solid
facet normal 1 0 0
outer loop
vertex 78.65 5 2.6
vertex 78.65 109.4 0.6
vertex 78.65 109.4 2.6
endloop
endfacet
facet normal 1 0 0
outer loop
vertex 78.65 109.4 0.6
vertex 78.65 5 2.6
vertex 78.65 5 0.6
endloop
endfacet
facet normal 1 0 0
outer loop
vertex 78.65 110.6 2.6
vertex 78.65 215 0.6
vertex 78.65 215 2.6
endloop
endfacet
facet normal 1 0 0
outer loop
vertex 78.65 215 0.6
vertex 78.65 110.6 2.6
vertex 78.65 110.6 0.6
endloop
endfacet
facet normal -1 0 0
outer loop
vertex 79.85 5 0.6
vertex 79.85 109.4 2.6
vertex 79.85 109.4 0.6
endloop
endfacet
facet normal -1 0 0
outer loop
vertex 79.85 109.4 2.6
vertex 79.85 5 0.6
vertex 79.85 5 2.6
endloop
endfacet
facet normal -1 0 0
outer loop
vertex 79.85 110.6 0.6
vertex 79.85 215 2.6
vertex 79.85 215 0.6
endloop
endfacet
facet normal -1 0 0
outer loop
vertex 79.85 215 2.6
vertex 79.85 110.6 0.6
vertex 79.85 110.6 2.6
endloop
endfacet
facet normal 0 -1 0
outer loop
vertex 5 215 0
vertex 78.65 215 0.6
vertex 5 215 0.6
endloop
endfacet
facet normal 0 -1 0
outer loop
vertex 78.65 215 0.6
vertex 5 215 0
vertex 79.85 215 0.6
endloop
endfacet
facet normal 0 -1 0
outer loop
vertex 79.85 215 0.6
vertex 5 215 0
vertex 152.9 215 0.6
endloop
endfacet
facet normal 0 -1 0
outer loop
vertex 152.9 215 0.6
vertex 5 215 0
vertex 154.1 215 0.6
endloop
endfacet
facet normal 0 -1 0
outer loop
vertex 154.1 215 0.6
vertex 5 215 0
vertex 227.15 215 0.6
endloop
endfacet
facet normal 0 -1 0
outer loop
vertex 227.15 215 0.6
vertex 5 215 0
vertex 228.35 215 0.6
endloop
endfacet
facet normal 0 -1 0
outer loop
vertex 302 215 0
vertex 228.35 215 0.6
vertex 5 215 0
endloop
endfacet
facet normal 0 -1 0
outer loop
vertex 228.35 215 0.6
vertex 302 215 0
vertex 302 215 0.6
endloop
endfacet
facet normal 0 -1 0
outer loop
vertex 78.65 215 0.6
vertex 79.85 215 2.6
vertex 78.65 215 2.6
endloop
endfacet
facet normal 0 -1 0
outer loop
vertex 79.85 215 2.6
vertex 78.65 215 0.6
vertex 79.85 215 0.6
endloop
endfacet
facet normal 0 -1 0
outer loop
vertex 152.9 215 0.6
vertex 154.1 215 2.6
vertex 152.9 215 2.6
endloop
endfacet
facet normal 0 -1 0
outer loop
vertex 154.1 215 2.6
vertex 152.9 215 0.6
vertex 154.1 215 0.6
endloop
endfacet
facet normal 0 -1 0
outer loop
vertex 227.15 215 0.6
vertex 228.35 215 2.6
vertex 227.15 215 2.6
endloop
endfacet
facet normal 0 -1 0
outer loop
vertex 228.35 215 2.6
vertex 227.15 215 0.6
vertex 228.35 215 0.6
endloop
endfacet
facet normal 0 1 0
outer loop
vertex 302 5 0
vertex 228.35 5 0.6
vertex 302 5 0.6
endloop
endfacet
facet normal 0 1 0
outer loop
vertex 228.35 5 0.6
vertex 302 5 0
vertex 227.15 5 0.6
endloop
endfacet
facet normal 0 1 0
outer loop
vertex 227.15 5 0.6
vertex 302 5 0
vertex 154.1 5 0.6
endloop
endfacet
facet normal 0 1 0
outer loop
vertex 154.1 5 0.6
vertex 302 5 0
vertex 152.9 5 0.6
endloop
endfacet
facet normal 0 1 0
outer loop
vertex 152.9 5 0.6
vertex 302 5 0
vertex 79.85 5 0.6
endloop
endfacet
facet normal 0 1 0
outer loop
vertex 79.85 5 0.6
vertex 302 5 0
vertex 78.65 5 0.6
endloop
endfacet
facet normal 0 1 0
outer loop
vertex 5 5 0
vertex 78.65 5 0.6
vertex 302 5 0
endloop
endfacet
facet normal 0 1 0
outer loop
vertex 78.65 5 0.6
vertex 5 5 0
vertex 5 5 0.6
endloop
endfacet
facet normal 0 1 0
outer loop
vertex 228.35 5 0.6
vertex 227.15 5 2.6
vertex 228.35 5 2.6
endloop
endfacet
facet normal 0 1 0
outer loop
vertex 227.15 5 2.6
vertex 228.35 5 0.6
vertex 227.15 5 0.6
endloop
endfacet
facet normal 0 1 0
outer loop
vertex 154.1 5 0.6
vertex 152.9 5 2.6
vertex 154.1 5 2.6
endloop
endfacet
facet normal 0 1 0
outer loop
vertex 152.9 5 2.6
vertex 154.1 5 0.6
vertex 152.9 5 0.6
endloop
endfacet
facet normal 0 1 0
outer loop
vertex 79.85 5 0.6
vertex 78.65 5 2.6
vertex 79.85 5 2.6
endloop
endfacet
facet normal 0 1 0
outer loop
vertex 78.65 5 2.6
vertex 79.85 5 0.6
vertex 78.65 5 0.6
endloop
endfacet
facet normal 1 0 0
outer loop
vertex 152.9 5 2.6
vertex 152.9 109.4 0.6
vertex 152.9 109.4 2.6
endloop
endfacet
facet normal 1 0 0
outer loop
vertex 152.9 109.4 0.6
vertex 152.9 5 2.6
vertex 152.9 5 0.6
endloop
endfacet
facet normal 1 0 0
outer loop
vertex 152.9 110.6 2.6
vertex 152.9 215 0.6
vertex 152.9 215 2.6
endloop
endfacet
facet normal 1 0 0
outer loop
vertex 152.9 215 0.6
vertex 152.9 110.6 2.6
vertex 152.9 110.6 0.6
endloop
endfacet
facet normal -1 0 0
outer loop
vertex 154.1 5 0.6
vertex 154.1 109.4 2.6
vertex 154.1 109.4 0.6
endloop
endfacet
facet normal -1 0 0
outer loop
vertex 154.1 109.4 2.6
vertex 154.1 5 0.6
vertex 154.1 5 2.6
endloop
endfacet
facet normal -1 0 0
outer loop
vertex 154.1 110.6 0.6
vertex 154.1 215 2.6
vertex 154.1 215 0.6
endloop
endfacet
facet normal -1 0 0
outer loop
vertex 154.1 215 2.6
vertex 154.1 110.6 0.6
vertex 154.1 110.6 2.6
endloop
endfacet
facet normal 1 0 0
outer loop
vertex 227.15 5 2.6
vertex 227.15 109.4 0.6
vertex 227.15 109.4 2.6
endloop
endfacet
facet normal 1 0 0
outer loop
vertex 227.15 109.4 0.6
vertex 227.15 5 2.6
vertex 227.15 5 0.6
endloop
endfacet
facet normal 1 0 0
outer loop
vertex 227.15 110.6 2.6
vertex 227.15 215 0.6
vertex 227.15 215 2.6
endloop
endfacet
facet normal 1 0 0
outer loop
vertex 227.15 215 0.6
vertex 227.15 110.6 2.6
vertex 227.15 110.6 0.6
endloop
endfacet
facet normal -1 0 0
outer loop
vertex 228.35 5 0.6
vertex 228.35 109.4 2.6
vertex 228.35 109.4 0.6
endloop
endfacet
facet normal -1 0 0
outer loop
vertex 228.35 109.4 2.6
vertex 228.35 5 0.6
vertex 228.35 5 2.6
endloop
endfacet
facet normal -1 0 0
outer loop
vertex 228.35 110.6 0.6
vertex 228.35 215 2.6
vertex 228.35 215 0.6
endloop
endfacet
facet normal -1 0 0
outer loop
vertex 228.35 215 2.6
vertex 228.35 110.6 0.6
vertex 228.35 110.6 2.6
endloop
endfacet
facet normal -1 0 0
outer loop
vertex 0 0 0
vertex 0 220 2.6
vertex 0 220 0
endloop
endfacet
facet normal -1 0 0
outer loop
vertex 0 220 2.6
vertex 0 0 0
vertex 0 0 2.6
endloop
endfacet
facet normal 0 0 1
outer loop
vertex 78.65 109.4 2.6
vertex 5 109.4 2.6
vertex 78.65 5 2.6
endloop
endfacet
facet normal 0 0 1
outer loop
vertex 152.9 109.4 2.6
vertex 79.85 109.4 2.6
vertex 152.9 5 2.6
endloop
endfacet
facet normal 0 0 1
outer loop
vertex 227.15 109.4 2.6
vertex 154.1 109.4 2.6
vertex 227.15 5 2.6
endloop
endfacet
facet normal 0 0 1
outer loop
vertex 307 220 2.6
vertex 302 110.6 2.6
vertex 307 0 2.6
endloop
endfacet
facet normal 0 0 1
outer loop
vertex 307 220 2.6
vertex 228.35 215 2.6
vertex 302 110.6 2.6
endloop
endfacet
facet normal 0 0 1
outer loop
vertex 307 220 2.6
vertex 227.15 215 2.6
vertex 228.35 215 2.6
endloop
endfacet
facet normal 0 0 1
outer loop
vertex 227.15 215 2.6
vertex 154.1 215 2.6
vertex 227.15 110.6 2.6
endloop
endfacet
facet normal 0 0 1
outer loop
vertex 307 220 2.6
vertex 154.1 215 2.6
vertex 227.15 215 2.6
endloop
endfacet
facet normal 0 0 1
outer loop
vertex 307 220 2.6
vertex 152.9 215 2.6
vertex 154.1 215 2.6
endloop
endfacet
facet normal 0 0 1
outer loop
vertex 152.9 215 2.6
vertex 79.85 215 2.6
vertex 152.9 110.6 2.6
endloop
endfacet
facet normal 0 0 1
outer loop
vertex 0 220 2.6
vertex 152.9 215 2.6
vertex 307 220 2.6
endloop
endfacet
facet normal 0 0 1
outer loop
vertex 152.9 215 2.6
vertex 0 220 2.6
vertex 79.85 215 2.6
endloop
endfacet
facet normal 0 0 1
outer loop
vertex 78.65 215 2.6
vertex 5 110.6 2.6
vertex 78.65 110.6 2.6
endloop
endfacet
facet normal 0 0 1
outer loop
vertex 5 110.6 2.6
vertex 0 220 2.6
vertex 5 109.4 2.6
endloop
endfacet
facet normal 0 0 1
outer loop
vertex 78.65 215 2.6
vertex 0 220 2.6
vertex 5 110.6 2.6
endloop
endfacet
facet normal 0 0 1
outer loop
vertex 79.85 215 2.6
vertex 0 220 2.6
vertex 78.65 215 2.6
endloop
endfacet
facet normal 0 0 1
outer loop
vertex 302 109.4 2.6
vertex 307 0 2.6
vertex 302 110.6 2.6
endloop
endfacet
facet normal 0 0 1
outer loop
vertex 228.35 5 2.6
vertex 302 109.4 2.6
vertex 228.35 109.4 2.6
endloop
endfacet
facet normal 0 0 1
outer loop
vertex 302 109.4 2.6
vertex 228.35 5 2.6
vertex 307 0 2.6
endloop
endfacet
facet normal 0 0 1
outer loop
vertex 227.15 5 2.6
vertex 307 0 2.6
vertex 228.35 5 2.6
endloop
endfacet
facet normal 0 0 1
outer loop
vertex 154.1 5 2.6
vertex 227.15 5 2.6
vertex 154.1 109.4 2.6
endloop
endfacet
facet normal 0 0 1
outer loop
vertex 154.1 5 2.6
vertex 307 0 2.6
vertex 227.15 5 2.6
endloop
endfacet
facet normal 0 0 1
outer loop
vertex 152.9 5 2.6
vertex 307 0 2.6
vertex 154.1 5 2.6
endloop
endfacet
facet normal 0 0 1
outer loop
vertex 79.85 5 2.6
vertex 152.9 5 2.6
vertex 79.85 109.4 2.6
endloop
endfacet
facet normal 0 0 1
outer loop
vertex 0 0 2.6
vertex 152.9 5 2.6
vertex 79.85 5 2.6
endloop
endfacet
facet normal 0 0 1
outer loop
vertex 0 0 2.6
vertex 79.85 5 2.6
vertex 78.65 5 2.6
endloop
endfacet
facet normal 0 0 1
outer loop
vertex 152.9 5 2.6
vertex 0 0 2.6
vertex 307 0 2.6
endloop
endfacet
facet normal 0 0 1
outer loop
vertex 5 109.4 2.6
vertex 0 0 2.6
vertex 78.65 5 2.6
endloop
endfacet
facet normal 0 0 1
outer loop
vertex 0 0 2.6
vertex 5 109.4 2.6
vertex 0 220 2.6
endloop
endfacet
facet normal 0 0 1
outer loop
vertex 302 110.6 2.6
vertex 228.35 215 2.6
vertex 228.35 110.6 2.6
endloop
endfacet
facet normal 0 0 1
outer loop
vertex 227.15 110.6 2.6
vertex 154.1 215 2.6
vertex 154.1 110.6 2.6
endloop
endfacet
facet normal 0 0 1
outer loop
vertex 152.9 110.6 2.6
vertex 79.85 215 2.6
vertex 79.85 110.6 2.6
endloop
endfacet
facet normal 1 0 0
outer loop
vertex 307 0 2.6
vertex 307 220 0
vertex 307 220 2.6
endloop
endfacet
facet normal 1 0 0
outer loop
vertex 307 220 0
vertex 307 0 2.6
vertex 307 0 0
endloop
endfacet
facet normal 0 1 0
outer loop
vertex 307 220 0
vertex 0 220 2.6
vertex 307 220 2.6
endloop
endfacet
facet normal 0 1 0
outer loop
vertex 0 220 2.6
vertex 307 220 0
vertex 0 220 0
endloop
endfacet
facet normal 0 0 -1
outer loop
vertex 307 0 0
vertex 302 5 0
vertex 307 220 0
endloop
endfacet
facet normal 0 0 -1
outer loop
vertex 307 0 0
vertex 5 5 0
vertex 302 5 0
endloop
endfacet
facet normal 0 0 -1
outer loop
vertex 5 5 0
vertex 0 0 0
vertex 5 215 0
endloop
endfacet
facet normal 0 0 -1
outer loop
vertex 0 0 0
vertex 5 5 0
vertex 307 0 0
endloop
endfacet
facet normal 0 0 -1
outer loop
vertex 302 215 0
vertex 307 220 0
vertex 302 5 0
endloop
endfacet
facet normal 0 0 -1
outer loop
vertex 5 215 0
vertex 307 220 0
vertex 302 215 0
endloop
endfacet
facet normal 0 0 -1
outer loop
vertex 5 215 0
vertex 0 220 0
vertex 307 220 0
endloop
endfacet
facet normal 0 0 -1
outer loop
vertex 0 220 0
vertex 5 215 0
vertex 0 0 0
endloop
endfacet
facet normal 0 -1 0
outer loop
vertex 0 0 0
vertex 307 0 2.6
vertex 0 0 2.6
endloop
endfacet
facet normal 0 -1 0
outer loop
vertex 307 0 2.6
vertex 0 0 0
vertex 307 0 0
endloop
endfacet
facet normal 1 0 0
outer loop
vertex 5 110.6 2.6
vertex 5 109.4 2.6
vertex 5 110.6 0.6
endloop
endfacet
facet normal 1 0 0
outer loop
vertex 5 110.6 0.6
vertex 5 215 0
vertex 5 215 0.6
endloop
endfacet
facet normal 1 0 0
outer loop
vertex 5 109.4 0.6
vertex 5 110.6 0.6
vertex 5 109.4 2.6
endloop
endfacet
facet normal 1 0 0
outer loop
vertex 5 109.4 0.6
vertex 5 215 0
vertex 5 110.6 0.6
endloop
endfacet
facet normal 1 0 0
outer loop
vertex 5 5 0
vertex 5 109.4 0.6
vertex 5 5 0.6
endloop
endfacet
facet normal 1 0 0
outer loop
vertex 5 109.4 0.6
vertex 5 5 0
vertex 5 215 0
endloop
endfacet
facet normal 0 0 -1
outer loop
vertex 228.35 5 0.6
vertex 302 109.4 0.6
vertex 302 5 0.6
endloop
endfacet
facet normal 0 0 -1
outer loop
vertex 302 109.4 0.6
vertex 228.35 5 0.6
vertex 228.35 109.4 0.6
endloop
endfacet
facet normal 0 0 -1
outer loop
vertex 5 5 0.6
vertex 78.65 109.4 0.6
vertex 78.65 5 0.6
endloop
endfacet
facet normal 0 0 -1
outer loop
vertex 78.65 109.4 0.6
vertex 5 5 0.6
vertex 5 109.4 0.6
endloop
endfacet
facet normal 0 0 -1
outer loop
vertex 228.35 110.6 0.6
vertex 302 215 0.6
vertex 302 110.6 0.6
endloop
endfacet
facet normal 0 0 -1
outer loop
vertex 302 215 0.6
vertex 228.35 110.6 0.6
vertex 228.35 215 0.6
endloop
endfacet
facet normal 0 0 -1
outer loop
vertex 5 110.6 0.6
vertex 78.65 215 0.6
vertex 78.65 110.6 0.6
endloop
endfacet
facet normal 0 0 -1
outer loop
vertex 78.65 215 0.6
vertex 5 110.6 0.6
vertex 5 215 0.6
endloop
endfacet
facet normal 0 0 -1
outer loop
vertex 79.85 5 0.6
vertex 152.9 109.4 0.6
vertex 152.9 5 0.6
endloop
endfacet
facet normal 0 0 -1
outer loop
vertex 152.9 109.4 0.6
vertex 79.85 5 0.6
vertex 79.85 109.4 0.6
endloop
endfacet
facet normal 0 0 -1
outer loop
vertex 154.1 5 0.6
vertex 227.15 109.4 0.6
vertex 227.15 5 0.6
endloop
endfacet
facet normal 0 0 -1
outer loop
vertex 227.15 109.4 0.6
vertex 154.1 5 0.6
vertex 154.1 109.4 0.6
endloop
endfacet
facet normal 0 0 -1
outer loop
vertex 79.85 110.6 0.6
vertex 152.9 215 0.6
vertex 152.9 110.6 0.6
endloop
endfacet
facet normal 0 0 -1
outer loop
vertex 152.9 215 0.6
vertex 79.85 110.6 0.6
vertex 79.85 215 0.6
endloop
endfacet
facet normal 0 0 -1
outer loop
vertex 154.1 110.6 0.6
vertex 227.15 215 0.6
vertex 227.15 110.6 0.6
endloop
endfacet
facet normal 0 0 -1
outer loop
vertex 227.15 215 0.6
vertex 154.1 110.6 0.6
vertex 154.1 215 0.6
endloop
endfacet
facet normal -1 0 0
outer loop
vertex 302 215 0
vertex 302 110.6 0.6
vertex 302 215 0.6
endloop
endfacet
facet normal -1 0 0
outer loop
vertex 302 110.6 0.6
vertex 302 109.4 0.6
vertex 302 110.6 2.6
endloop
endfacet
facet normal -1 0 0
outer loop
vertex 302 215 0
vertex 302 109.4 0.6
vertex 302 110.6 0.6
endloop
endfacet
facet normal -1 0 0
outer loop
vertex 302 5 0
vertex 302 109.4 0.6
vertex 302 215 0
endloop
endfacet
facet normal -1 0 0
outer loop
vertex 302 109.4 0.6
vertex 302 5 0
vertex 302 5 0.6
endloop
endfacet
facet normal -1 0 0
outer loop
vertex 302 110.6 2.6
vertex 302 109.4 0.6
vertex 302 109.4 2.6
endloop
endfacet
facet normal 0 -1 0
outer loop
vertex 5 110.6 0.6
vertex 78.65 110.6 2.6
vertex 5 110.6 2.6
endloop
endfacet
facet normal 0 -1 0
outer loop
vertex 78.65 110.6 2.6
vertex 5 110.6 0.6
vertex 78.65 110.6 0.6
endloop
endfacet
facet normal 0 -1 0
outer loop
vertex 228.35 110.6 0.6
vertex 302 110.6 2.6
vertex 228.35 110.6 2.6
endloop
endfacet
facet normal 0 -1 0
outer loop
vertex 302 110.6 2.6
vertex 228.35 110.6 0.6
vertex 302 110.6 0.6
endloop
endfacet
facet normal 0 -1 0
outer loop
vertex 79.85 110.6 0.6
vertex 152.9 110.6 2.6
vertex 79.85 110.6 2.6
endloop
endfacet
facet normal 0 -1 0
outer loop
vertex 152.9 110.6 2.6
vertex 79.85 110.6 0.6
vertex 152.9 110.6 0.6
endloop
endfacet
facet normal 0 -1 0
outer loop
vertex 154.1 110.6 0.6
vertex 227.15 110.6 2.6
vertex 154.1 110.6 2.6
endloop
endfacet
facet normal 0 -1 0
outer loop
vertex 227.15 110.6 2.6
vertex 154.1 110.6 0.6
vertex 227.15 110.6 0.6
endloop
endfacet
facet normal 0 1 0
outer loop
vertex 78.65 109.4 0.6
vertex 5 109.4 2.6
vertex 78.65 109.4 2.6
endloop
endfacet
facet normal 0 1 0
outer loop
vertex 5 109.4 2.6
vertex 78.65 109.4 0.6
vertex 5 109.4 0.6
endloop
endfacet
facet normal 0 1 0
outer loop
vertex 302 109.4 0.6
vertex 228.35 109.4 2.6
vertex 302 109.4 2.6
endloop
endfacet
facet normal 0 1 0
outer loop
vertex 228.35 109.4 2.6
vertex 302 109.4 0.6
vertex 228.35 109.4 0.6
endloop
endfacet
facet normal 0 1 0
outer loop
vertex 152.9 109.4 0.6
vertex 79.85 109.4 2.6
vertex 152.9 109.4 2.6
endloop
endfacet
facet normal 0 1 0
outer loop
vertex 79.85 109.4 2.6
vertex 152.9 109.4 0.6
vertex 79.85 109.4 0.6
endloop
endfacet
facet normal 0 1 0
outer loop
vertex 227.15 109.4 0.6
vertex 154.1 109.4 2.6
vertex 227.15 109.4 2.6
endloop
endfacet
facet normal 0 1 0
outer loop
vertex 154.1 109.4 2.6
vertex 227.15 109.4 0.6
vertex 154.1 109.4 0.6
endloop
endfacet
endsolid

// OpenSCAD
// Full A4 Polaroid Solid Stencil Jig - Ultra Tight Fit

// Exact A4 Paper dimensions (zero clearance for a tight hug)
paper_w = 297.0;
paper_h = 210.0;

// Jig settings
wall = 5.0;         // Outer border thickness (slightly thicker for rigidity)
lip_h = 0.6;        // Ultra-shallow recess to clamp the paper flat against the cutting mat
plate_h = 2.0;      // Thickness of the solid plate
slot_w = 1.2;       // Width of the cutting slot

$fn = 64;

module solid_stencil_tight() {
    difference() {
        // Main solid block
        cube([paper_w + 2*wall, paper_h + 2*wall, lip_h + plate_h]);
        
        // Bottom recess for the A4 paper
        translate([wall, wall, -0.1])
            cube([paper_w, paper_h, lip_h + 0.1]);
            
        // 1 Horizontal slot (continuous)
        translate([wall, wall + paper_h/2 - slot_w/2, -0.1])
            cube([paper_w, slot_w, lip_h + plate_h + 0.2]);
            
        // 3 Vertical slots (continuous)
        for (i = [1:3]) {
            translate([wall + i*(paper_w/4) - slot_w/2, wall, -0.1])
                cube([slot_w, paper_h, lip_h + plate_h + 0.2]);
        }
    }
}

solid_stencil_tight();
